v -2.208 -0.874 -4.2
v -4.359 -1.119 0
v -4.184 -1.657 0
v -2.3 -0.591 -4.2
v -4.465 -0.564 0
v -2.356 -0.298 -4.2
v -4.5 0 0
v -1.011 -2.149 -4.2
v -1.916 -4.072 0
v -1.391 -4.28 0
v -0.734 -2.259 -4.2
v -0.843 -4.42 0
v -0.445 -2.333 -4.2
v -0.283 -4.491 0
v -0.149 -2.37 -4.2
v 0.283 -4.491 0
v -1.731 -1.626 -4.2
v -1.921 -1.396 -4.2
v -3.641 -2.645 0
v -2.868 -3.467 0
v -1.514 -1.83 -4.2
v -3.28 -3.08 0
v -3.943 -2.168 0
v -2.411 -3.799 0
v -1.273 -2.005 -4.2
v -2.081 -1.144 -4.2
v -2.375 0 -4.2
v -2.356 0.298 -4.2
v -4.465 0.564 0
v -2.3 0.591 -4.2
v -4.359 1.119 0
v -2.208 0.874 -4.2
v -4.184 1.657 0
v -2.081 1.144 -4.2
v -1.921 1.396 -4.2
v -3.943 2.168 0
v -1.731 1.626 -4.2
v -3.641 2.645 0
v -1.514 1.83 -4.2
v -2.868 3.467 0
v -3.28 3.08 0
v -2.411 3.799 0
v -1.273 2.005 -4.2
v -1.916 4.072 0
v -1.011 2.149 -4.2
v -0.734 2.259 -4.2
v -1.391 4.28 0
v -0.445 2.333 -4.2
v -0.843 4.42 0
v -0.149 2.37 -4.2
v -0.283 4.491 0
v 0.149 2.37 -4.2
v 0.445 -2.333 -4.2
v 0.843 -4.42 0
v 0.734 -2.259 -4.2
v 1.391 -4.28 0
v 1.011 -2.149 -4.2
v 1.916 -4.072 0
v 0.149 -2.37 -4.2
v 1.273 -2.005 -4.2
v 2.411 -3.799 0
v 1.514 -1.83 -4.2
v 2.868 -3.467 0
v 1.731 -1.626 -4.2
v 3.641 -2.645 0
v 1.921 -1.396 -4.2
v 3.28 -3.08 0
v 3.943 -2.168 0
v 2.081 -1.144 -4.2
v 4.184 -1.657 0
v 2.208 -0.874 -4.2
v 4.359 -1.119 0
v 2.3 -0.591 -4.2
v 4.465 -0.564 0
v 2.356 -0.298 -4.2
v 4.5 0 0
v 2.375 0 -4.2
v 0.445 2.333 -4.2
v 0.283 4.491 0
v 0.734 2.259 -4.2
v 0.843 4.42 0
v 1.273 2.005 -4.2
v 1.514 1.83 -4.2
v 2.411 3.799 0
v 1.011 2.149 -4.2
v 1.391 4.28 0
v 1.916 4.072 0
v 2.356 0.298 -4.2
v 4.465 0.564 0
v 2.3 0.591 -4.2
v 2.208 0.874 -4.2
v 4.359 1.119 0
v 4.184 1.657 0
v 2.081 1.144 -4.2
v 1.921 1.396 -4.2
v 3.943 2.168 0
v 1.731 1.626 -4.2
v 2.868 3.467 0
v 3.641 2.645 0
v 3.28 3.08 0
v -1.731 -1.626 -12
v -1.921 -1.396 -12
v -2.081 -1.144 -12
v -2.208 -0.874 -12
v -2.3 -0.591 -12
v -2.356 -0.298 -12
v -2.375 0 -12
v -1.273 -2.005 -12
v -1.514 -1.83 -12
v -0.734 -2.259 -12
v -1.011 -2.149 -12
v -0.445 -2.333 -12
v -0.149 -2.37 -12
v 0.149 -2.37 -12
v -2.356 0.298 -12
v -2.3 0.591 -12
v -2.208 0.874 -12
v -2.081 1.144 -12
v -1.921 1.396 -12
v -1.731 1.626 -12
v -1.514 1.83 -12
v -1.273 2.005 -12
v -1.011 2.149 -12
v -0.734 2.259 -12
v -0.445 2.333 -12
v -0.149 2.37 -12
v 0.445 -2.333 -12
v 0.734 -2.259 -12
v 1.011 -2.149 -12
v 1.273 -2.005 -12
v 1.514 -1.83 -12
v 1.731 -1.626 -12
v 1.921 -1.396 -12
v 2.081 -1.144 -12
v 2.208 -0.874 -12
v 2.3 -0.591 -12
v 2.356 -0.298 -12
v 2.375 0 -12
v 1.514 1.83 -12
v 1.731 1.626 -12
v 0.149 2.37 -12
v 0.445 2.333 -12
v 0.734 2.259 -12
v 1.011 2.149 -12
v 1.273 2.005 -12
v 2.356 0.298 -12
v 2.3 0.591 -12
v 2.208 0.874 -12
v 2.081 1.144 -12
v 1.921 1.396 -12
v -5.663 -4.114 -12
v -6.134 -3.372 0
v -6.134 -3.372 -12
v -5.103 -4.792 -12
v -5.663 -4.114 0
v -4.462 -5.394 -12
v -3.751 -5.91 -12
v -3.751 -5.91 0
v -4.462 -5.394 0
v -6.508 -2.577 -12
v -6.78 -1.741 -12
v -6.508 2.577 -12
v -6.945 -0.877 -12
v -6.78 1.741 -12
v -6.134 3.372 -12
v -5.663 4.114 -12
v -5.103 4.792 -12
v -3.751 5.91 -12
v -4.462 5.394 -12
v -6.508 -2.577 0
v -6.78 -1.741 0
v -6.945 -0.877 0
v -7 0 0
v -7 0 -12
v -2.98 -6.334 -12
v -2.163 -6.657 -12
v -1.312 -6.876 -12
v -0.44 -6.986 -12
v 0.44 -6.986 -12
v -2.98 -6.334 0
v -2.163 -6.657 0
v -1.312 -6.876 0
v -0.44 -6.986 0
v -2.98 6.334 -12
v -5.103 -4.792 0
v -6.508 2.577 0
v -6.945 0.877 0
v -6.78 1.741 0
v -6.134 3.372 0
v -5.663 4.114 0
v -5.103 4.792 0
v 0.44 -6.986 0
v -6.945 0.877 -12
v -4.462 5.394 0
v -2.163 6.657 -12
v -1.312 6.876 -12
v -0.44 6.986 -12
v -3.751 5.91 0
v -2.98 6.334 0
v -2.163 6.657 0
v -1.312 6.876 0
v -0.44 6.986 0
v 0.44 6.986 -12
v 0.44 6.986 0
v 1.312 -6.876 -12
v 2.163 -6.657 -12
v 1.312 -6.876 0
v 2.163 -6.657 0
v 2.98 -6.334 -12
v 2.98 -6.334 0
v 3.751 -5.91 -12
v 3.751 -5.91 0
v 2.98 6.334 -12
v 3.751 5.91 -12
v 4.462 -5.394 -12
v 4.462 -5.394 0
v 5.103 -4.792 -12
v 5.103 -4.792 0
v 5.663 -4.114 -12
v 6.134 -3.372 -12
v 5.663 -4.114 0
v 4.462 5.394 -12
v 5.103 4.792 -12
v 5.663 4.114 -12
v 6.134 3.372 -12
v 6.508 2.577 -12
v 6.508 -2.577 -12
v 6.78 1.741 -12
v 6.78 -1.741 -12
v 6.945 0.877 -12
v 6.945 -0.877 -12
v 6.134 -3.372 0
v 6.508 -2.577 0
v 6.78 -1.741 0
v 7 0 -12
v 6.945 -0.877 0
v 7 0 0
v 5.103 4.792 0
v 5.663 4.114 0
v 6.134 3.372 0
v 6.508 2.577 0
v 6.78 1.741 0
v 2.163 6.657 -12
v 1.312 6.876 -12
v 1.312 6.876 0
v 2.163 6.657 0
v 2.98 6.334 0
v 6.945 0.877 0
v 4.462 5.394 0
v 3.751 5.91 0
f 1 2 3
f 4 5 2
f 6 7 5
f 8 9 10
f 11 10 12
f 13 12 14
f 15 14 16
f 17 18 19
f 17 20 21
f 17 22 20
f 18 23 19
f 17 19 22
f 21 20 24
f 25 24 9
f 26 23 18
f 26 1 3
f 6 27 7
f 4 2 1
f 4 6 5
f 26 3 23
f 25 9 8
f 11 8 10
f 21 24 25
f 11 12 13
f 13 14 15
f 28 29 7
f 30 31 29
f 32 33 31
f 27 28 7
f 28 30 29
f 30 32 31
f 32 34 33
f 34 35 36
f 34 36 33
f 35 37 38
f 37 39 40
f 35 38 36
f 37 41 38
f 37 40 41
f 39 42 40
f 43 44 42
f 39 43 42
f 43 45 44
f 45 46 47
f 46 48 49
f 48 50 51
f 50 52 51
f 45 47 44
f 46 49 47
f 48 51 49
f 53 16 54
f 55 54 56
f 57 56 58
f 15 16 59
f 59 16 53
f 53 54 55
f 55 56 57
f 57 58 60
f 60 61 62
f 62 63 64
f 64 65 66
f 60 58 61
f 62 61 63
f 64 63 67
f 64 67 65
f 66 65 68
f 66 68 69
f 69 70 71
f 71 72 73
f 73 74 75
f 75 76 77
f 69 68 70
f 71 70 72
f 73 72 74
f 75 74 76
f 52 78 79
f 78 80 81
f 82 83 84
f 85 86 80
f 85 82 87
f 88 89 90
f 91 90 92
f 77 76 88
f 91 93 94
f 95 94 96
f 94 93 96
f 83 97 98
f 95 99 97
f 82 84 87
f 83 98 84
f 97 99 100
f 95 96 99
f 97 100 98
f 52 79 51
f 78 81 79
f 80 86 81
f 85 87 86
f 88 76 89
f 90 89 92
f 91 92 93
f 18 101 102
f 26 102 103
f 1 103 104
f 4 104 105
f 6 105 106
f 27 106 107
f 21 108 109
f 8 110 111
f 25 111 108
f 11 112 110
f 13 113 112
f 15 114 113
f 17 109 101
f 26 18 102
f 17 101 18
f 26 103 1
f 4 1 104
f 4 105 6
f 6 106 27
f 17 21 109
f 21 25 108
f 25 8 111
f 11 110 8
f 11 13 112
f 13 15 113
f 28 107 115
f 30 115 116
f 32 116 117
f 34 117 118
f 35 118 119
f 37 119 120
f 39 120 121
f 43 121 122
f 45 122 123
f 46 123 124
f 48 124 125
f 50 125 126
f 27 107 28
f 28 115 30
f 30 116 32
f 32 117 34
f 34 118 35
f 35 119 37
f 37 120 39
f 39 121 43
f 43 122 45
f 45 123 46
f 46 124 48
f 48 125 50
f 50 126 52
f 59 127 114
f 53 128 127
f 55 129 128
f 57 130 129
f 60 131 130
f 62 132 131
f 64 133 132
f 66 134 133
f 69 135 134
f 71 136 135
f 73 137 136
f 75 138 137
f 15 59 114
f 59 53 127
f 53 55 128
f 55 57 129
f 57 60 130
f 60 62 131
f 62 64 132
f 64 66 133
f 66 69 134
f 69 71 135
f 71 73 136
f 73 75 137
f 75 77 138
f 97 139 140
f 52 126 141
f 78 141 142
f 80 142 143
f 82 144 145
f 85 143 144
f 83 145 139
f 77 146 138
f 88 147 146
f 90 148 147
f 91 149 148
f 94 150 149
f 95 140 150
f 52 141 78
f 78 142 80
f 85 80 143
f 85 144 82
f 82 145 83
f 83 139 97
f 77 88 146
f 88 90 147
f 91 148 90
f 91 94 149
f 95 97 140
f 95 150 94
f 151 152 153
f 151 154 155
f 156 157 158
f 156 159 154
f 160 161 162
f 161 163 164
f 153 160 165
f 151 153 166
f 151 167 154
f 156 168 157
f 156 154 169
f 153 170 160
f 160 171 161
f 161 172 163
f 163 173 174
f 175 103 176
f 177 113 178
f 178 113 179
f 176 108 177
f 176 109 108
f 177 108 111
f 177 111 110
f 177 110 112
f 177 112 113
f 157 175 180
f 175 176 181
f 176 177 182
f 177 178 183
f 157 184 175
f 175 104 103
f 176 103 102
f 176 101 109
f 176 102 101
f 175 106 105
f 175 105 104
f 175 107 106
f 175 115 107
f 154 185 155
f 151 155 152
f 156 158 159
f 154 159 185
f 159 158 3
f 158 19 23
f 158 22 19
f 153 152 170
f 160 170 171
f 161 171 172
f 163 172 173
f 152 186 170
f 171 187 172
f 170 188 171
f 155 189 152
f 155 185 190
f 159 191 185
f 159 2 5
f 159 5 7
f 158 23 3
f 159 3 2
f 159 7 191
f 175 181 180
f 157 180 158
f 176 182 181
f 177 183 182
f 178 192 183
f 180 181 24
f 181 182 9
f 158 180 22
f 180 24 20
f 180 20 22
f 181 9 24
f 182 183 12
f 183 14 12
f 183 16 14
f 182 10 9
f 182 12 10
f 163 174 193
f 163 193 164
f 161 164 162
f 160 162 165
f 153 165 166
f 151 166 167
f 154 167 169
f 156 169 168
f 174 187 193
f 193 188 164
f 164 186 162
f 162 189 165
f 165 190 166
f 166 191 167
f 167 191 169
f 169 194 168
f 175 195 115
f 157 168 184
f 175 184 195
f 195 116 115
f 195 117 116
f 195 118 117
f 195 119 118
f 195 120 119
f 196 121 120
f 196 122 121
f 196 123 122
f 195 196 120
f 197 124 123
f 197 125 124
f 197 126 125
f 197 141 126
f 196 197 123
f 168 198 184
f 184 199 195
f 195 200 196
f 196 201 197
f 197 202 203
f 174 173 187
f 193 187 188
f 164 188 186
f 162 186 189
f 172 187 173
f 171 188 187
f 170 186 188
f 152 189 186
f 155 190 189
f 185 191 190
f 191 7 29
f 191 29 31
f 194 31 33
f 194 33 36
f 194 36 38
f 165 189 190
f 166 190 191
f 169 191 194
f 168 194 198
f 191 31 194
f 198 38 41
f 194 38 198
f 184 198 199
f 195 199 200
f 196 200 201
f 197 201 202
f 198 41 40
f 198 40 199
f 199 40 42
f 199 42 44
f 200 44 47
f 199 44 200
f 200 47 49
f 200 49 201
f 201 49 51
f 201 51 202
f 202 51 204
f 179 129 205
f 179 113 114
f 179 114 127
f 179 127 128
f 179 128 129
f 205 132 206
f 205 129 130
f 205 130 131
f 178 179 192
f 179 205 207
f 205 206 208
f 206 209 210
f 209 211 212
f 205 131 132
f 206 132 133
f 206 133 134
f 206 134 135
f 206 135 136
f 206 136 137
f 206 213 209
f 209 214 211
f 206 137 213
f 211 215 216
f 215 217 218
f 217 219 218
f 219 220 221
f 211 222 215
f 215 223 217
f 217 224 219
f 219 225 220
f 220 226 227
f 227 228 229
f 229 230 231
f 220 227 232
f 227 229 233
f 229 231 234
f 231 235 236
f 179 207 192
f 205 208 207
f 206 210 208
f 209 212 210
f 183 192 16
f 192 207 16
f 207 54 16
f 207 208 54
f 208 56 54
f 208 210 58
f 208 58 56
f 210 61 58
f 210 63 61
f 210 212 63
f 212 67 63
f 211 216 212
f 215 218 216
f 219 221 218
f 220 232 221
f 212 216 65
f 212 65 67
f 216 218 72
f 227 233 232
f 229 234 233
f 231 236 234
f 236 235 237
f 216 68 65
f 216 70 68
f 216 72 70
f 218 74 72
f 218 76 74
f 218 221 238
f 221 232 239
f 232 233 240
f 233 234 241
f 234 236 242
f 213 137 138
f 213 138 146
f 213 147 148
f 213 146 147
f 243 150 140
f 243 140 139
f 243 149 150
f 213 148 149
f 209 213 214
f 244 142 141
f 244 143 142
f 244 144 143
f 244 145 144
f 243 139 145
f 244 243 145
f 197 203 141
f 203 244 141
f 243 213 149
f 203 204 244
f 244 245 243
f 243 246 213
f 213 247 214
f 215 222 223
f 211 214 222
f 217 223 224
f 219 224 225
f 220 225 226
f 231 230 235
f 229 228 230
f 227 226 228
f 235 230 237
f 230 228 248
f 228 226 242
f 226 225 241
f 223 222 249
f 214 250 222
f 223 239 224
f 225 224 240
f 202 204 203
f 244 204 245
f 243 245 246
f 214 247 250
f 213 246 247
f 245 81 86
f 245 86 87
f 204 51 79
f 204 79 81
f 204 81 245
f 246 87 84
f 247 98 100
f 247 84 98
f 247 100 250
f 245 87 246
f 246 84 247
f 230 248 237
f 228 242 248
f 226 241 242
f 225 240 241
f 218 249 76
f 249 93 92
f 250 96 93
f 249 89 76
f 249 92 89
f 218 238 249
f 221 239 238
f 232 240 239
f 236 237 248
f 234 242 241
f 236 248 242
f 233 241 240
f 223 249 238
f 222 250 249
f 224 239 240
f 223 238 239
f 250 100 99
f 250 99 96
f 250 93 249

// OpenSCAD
$fn = 50;

difference() {
	union() {
		translate(v = [0, 0, -12.0]) {
			cylinder(h = 12, r = 7.0);
		}
	}
	union() {
		translate(v = [0, 0, 0]) {
			rotate(a = [0, 0, 0]) {
				difference() {
					union() {
						translate(v = [0, 0, -15.0]) {
							cylinder(h = 15, r = 2.25);
						}
						translate(v = [0, 0, -4.2]) {
							cylinder(h = 4.2, r1 = 2.375, r2 = 4.5);
						}
						translate(v = [0, 0, -15.0]) {
							cylinder(h = 15, r = 2.375);
						}
						translate(v = [0, 0, -15.0]) {
							cylinder(h = 15, r = 2.25);
						}
					}
					union();
				}
			}
		}
	}
}
